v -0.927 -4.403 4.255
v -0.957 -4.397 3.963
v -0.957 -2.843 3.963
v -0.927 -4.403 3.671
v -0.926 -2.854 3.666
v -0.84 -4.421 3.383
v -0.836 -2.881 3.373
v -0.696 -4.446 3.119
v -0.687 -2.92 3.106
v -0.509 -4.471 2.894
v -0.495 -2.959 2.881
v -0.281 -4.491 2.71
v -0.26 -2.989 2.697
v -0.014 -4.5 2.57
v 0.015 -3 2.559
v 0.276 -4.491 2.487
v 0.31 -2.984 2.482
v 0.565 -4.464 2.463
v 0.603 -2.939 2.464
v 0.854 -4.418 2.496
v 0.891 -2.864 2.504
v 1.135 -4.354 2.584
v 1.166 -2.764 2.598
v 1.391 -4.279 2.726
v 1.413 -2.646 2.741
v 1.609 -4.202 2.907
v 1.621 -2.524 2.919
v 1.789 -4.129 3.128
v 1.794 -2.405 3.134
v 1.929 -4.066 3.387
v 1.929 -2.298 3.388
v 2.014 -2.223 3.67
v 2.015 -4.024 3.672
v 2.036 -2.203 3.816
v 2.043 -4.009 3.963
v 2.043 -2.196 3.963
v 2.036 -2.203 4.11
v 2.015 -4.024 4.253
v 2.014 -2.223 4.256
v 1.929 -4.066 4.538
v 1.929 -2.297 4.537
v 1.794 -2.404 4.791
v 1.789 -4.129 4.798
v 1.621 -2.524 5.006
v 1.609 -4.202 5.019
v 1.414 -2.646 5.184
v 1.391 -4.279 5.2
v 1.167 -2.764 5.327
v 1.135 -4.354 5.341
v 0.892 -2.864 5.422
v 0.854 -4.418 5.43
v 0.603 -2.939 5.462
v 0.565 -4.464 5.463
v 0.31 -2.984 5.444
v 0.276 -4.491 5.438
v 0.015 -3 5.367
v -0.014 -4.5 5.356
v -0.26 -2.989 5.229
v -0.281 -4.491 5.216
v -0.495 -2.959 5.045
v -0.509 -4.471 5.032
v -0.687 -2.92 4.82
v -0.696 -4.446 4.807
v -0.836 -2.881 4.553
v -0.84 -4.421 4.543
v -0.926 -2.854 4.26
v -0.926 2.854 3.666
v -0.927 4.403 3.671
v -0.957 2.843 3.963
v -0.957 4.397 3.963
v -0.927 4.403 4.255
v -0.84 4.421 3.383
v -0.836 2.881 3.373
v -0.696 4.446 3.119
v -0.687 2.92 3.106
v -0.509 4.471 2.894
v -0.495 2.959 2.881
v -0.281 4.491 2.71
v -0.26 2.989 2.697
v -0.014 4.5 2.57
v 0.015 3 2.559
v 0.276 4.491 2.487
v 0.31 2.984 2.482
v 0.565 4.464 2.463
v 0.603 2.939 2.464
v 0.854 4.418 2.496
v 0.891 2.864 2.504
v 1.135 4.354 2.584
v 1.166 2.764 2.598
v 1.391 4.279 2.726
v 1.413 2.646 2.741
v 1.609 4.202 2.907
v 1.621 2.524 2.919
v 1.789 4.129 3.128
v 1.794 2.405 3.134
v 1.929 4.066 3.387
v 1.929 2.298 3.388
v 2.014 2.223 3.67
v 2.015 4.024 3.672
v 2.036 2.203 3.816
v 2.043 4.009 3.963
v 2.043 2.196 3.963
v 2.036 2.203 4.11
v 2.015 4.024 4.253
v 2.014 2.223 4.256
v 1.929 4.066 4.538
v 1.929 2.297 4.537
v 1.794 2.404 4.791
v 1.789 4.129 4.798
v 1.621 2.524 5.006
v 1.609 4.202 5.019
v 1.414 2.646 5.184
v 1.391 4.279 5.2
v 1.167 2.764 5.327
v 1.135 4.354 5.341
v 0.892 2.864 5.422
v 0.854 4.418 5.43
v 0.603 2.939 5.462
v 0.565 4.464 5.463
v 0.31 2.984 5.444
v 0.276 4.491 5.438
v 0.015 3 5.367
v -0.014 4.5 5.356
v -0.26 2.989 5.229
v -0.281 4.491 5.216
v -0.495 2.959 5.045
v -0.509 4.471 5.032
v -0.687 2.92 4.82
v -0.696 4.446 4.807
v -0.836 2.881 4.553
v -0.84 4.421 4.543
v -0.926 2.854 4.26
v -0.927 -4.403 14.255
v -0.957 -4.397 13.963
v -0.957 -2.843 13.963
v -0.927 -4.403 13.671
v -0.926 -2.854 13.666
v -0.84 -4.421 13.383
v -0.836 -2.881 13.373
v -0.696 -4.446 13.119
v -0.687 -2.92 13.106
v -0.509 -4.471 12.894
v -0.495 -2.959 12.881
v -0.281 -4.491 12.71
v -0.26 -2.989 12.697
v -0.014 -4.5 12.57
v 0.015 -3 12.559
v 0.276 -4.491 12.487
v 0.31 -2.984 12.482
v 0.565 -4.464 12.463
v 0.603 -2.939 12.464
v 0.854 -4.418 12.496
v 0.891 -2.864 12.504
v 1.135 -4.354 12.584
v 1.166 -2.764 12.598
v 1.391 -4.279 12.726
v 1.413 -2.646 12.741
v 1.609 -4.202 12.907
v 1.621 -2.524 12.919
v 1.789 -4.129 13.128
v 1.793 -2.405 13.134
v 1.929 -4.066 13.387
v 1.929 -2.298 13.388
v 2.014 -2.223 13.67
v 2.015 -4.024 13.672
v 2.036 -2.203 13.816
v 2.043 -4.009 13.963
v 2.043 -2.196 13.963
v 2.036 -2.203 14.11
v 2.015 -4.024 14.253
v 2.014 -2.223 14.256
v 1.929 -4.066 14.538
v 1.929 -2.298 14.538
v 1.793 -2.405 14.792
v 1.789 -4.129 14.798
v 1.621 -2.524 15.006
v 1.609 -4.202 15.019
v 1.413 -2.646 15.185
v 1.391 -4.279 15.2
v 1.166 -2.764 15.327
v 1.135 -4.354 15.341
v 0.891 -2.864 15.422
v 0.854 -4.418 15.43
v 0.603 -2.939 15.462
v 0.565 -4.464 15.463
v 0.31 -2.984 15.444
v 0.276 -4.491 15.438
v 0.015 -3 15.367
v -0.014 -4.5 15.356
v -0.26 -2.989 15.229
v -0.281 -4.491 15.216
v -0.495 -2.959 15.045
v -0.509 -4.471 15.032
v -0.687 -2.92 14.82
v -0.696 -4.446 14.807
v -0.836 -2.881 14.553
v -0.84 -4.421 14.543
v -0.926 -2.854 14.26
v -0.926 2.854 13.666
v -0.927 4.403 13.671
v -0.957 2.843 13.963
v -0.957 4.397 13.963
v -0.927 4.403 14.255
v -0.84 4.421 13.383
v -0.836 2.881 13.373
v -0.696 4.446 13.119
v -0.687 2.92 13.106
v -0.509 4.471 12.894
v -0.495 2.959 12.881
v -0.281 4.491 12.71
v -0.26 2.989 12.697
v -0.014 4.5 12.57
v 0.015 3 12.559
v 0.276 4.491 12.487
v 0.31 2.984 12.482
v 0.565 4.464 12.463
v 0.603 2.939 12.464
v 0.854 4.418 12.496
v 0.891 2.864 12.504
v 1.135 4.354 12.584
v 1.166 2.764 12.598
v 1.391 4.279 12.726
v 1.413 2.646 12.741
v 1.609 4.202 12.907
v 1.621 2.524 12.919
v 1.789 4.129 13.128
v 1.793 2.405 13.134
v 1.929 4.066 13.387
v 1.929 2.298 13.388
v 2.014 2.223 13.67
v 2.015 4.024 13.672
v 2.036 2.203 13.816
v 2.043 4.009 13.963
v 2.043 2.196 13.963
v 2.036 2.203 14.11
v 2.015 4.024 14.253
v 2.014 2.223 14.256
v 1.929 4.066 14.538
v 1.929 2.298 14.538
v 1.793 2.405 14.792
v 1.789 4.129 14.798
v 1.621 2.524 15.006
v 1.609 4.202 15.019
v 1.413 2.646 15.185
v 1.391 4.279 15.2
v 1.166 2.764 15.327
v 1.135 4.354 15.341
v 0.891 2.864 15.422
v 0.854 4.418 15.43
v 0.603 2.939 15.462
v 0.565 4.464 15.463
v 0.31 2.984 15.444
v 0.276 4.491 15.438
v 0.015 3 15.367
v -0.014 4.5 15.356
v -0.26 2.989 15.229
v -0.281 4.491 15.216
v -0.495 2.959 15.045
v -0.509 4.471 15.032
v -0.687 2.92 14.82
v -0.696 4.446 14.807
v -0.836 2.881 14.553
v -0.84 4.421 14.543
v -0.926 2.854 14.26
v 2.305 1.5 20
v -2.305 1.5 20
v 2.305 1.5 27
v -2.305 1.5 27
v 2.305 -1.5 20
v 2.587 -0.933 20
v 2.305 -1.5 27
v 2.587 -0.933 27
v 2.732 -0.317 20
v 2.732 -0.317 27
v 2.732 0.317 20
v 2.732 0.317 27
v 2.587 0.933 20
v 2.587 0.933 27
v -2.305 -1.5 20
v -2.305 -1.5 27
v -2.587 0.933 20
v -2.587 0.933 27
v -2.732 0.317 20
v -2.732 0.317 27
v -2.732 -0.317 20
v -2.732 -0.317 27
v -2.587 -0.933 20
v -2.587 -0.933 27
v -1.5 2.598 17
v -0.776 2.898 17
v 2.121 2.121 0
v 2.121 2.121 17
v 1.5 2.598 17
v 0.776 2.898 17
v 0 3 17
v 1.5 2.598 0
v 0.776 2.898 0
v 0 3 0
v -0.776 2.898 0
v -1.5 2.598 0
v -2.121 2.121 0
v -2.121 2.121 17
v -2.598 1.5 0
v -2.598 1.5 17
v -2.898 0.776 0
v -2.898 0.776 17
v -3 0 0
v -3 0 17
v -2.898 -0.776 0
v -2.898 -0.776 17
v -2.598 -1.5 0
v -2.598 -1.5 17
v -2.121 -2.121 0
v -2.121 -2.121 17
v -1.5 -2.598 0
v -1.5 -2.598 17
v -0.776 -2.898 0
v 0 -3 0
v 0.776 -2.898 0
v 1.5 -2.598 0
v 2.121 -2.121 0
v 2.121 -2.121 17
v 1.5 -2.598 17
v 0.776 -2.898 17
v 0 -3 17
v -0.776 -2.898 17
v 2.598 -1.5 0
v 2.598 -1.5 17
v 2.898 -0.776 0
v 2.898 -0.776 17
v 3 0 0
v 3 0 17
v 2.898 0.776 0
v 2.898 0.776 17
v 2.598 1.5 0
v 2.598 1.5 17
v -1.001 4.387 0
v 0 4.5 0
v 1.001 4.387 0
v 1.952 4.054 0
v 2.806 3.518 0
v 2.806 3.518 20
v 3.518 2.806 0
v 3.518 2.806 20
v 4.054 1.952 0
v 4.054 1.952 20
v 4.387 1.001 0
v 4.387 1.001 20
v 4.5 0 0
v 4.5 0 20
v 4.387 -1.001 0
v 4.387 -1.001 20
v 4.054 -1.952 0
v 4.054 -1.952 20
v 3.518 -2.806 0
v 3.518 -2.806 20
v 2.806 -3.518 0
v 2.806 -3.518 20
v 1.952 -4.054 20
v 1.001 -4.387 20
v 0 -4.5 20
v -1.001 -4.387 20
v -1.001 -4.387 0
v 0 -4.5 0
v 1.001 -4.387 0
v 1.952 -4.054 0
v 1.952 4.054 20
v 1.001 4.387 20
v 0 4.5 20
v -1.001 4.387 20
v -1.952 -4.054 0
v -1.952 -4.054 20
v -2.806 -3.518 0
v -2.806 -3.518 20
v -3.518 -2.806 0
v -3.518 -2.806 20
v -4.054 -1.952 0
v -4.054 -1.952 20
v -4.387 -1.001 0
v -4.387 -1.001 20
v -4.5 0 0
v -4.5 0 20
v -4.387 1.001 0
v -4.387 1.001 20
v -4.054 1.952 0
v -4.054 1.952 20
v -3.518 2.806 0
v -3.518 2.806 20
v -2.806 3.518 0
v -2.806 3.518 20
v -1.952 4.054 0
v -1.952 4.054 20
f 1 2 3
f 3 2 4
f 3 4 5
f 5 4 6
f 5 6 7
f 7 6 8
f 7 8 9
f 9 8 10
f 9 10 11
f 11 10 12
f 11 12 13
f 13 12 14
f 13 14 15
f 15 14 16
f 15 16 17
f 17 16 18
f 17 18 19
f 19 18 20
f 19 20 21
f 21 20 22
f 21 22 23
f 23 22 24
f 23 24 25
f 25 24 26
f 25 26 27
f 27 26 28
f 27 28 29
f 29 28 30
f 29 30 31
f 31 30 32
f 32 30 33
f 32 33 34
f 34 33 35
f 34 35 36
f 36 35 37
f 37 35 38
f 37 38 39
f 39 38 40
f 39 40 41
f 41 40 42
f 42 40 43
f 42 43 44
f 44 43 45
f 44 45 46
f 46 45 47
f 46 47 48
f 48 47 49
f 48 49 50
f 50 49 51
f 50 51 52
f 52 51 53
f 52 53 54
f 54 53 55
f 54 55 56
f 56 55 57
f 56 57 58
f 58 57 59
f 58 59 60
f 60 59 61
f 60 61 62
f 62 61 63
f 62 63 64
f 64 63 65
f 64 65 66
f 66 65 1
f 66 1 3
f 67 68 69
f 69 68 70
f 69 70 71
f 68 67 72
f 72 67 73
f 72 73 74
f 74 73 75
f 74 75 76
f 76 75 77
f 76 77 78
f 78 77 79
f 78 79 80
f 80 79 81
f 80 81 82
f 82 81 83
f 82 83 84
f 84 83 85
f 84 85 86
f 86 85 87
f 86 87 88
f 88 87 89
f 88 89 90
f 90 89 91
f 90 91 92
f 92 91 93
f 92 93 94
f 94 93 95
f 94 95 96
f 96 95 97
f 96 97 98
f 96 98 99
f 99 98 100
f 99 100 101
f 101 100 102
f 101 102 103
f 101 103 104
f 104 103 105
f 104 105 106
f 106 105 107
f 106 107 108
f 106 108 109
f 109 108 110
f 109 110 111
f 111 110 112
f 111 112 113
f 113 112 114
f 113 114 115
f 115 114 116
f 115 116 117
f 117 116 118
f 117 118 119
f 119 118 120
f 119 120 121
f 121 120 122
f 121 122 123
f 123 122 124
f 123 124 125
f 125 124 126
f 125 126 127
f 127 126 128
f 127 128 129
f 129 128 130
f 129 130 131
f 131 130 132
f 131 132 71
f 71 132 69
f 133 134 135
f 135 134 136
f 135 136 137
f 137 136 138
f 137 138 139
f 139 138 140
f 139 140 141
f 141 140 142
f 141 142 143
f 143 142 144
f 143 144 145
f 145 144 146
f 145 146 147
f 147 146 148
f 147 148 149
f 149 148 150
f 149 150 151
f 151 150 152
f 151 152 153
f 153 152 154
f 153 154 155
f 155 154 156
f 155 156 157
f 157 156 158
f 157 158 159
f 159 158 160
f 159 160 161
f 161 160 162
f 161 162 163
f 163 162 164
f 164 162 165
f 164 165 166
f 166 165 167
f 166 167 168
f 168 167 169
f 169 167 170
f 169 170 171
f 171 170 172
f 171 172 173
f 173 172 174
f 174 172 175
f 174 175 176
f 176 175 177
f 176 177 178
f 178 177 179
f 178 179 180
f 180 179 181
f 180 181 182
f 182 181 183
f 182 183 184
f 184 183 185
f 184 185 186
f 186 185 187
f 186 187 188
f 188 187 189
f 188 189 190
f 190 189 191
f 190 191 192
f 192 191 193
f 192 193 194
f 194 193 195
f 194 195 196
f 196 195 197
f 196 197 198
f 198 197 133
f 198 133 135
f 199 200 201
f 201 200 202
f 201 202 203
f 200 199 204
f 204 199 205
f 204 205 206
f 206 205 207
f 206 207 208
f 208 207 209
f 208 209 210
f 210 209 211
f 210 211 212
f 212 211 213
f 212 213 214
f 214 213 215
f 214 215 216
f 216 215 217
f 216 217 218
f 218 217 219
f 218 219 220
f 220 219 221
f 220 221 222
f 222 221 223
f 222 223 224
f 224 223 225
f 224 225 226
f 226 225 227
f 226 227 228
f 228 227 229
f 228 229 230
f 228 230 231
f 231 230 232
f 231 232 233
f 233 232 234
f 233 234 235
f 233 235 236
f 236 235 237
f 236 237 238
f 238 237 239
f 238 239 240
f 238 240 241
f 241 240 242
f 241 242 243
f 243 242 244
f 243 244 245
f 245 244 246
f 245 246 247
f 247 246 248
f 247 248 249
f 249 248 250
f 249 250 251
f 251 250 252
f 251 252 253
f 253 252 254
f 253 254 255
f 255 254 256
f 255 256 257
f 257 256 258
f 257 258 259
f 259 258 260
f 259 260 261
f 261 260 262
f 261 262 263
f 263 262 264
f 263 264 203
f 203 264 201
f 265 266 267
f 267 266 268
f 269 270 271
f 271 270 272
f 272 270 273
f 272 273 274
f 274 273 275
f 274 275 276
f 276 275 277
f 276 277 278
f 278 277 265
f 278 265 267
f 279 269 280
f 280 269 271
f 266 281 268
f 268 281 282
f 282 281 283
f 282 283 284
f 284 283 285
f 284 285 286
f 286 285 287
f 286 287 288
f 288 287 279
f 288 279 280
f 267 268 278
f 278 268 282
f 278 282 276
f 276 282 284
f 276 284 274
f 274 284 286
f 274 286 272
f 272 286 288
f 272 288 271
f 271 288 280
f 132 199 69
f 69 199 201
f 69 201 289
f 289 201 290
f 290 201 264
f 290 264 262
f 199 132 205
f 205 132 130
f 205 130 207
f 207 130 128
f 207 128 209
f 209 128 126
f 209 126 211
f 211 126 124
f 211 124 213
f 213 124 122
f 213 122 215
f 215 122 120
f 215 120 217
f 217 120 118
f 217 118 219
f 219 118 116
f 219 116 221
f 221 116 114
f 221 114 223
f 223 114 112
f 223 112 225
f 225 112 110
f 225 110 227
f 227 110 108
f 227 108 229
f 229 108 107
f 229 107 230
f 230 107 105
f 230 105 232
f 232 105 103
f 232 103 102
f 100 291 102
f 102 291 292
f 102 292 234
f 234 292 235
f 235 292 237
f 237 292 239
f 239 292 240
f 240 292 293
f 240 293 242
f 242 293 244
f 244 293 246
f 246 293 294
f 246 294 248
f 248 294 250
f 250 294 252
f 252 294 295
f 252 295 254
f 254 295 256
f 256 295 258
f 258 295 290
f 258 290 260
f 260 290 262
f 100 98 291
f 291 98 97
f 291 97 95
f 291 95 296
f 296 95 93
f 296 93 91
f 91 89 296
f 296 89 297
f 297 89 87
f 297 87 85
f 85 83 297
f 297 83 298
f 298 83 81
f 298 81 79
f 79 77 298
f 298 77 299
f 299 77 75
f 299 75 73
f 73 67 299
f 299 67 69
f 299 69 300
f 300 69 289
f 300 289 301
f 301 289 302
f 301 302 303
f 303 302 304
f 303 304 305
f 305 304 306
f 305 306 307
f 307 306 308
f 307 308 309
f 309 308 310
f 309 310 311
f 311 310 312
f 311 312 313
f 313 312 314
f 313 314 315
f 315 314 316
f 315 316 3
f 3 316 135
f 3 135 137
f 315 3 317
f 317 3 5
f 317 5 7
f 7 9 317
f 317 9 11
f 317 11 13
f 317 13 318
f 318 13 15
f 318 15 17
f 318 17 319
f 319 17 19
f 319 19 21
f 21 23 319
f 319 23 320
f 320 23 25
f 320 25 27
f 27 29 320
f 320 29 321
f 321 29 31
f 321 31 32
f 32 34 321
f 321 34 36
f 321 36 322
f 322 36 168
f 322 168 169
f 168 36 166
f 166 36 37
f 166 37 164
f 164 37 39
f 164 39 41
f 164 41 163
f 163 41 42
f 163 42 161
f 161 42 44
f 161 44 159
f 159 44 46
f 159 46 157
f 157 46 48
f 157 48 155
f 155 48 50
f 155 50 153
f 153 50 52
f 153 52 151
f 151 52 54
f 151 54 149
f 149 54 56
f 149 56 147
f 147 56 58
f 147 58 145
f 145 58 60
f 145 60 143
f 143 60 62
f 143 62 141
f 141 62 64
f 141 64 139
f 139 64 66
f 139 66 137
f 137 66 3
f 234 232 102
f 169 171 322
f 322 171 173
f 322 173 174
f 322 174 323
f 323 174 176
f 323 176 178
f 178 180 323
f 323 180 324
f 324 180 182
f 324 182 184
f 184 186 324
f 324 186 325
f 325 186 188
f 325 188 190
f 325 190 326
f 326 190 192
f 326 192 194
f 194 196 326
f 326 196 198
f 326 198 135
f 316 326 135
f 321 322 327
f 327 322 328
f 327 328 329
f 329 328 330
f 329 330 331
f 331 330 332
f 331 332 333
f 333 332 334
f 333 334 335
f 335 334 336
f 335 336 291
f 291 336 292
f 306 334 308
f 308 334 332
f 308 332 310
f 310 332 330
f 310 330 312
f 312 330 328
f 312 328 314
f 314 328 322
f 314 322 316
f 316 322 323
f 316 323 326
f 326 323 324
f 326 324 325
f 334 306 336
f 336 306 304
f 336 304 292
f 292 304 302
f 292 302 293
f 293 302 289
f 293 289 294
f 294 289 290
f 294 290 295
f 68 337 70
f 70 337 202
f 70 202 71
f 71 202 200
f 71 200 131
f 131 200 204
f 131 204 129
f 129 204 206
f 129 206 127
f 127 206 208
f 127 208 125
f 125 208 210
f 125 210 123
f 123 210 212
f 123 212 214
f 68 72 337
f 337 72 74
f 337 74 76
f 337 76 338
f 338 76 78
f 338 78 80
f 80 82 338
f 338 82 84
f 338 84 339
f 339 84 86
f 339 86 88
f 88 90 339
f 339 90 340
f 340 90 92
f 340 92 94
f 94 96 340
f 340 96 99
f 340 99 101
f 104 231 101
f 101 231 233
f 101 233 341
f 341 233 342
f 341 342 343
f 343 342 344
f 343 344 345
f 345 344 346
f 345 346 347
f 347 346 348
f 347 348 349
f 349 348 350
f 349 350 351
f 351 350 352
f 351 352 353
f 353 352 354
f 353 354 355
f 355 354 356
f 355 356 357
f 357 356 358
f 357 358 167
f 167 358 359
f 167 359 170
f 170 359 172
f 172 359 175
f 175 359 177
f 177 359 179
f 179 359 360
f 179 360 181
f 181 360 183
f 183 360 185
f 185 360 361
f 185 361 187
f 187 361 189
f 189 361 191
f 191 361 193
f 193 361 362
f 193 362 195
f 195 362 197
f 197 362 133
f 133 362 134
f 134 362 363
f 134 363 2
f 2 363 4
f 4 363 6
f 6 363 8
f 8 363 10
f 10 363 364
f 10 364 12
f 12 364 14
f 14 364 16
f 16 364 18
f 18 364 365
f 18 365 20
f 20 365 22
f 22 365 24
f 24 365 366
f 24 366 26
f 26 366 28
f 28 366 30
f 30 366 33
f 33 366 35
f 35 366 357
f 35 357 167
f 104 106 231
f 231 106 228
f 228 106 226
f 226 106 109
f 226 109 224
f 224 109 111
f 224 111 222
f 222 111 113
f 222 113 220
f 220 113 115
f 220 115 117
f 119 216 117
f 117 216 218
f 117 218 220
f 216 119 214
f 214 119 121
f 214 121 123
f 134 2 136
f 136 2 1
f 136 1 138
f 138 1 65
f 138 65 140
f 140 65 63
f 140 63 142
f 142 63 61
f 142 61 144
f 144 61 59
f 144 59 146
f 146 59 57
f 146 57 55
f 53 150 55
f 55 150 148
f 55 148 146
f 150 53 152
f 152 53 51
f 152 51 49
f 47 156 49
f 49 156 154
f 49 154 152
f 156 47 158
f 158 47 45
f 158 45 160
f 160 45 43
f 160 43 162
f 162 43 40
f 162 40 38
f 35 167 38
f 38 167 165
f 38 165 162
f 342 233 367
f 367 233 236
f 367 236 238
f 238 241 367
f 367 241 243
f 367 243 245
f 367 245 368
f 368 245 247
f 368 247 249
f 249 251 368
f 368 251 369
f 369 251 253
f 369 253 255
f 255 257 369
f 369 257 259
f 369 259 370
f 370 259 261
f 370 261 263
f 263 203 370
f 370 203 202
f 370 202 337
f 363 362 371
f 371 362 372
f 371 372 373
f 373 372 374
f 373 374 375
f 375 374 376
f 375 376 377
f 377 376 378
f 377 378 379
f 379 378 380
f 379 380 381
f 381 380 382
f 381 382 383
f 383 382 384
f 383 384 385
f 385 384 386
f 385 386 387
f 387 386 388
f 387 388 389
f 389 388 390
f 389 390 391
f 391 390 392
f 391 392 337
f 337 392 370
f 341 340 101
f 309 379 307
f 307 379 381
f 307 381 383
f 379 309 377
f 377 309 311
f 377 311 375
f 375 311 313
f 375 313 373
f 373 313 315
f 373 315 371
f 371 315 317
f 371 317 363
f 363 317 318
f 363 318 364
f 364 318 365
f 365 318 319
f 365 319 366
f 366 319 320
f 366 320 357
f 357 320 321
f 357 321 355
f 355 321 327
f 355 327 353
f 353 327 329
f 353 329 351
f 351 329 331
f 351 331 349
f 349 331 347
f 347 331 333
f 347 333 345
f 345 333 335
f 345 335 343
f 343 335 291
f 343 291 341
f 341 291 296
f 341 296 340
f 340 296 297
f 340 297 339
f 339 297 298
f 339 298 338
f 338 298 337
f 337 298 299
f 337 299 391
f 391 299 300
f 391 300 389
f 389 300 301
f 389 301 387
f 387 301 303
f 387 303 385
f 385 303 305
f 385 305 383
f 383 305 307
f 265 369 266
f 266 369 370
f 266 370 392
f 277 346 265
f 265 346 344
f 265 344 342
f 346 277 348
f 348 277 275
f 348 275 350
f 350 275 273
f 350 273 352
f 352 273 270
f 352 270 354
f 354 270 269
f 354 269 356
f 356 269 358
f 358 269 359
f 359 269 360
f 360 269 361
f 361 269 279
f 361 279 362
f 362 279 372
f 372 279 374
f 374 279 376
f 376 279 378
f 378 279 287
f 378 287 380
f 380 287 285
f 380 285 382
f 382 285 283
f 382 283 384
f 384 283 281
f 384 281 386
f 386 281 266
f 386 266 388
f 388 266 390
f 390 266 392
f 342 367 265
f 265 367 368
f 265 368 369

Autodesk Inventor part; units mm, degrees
ref_plane "YZ Plane" through (0, 0, 0) normal (1, 0, 0) x (0, 1, 0)
ref_plane "XY Plane" through (0, 0, 0) normal (0, 0, 1) x (1, 0, 0)
sketch "Szkic1" plane through (0, 0, 0) normal (0, 0, 1) x (1, 0, 0)
  circle A0 centre (0, 0) radius 4.5
  dimension "d0" = 9
extrude "Wyciągnięcie proste1" add sketch "Szkic1" along normal blind 20
sketch "Szkic2" plane through (0, 0, 0) normal (0, 0, -1) x (-1, 0, 0)
  circle A0 centre (0, 0) radius 3
  dimension "d3" = 6
extrude "Wyciągnięcie proste2" cut sketch "Szkic2" against normal blind 17
sketch "Szkic3" plane through (0, 0, 20) normal (0, 0, 1) x (1, 0, 0)
  circle A0 centre (0, 0) radius 2.75
  line L0 (-2.3049, 1.5) -> (2.3049, 1.5)
  line L1 (-2.3049, -1.5) -> (2.3049, -1.5)
  dimension "d6" = 5.5
  dimension "d7" = 1.5
  dimension "d8" = 1.5
extrude "Wyciągnięcie proste3" add sketch "Szkic3" along normal blind 7 contours A0 L1 L0
ref_plane "Płaszczyzna konstrukcyjna1" through (0, 5, 0) normal (0, 1, 0) x (-1, 0, 0)
sketch "Szkic6" plane through (0, 5, 0) normal (0, 1, 0) x (-1, 0, 0)
  line L0 (-2.3049, 20) -> (-2.3049, 27) projected
  point P0 (0, 0)
  point P1 (-0.5435, 3.9629)
  point P2 (-0.5435, 13.9629)
  dimension "d12" = 10
  dimension "d13" = 4
  dimension "d14" = 1.7614
  dimension "d15" = 1.7614
hole "Otwór1" at (0.5435, 5, 3.9629) at (0.5435, 5, 13.9629) direction (0, -1, 0) diameter 3 end through all
properties part number "Ośka"
